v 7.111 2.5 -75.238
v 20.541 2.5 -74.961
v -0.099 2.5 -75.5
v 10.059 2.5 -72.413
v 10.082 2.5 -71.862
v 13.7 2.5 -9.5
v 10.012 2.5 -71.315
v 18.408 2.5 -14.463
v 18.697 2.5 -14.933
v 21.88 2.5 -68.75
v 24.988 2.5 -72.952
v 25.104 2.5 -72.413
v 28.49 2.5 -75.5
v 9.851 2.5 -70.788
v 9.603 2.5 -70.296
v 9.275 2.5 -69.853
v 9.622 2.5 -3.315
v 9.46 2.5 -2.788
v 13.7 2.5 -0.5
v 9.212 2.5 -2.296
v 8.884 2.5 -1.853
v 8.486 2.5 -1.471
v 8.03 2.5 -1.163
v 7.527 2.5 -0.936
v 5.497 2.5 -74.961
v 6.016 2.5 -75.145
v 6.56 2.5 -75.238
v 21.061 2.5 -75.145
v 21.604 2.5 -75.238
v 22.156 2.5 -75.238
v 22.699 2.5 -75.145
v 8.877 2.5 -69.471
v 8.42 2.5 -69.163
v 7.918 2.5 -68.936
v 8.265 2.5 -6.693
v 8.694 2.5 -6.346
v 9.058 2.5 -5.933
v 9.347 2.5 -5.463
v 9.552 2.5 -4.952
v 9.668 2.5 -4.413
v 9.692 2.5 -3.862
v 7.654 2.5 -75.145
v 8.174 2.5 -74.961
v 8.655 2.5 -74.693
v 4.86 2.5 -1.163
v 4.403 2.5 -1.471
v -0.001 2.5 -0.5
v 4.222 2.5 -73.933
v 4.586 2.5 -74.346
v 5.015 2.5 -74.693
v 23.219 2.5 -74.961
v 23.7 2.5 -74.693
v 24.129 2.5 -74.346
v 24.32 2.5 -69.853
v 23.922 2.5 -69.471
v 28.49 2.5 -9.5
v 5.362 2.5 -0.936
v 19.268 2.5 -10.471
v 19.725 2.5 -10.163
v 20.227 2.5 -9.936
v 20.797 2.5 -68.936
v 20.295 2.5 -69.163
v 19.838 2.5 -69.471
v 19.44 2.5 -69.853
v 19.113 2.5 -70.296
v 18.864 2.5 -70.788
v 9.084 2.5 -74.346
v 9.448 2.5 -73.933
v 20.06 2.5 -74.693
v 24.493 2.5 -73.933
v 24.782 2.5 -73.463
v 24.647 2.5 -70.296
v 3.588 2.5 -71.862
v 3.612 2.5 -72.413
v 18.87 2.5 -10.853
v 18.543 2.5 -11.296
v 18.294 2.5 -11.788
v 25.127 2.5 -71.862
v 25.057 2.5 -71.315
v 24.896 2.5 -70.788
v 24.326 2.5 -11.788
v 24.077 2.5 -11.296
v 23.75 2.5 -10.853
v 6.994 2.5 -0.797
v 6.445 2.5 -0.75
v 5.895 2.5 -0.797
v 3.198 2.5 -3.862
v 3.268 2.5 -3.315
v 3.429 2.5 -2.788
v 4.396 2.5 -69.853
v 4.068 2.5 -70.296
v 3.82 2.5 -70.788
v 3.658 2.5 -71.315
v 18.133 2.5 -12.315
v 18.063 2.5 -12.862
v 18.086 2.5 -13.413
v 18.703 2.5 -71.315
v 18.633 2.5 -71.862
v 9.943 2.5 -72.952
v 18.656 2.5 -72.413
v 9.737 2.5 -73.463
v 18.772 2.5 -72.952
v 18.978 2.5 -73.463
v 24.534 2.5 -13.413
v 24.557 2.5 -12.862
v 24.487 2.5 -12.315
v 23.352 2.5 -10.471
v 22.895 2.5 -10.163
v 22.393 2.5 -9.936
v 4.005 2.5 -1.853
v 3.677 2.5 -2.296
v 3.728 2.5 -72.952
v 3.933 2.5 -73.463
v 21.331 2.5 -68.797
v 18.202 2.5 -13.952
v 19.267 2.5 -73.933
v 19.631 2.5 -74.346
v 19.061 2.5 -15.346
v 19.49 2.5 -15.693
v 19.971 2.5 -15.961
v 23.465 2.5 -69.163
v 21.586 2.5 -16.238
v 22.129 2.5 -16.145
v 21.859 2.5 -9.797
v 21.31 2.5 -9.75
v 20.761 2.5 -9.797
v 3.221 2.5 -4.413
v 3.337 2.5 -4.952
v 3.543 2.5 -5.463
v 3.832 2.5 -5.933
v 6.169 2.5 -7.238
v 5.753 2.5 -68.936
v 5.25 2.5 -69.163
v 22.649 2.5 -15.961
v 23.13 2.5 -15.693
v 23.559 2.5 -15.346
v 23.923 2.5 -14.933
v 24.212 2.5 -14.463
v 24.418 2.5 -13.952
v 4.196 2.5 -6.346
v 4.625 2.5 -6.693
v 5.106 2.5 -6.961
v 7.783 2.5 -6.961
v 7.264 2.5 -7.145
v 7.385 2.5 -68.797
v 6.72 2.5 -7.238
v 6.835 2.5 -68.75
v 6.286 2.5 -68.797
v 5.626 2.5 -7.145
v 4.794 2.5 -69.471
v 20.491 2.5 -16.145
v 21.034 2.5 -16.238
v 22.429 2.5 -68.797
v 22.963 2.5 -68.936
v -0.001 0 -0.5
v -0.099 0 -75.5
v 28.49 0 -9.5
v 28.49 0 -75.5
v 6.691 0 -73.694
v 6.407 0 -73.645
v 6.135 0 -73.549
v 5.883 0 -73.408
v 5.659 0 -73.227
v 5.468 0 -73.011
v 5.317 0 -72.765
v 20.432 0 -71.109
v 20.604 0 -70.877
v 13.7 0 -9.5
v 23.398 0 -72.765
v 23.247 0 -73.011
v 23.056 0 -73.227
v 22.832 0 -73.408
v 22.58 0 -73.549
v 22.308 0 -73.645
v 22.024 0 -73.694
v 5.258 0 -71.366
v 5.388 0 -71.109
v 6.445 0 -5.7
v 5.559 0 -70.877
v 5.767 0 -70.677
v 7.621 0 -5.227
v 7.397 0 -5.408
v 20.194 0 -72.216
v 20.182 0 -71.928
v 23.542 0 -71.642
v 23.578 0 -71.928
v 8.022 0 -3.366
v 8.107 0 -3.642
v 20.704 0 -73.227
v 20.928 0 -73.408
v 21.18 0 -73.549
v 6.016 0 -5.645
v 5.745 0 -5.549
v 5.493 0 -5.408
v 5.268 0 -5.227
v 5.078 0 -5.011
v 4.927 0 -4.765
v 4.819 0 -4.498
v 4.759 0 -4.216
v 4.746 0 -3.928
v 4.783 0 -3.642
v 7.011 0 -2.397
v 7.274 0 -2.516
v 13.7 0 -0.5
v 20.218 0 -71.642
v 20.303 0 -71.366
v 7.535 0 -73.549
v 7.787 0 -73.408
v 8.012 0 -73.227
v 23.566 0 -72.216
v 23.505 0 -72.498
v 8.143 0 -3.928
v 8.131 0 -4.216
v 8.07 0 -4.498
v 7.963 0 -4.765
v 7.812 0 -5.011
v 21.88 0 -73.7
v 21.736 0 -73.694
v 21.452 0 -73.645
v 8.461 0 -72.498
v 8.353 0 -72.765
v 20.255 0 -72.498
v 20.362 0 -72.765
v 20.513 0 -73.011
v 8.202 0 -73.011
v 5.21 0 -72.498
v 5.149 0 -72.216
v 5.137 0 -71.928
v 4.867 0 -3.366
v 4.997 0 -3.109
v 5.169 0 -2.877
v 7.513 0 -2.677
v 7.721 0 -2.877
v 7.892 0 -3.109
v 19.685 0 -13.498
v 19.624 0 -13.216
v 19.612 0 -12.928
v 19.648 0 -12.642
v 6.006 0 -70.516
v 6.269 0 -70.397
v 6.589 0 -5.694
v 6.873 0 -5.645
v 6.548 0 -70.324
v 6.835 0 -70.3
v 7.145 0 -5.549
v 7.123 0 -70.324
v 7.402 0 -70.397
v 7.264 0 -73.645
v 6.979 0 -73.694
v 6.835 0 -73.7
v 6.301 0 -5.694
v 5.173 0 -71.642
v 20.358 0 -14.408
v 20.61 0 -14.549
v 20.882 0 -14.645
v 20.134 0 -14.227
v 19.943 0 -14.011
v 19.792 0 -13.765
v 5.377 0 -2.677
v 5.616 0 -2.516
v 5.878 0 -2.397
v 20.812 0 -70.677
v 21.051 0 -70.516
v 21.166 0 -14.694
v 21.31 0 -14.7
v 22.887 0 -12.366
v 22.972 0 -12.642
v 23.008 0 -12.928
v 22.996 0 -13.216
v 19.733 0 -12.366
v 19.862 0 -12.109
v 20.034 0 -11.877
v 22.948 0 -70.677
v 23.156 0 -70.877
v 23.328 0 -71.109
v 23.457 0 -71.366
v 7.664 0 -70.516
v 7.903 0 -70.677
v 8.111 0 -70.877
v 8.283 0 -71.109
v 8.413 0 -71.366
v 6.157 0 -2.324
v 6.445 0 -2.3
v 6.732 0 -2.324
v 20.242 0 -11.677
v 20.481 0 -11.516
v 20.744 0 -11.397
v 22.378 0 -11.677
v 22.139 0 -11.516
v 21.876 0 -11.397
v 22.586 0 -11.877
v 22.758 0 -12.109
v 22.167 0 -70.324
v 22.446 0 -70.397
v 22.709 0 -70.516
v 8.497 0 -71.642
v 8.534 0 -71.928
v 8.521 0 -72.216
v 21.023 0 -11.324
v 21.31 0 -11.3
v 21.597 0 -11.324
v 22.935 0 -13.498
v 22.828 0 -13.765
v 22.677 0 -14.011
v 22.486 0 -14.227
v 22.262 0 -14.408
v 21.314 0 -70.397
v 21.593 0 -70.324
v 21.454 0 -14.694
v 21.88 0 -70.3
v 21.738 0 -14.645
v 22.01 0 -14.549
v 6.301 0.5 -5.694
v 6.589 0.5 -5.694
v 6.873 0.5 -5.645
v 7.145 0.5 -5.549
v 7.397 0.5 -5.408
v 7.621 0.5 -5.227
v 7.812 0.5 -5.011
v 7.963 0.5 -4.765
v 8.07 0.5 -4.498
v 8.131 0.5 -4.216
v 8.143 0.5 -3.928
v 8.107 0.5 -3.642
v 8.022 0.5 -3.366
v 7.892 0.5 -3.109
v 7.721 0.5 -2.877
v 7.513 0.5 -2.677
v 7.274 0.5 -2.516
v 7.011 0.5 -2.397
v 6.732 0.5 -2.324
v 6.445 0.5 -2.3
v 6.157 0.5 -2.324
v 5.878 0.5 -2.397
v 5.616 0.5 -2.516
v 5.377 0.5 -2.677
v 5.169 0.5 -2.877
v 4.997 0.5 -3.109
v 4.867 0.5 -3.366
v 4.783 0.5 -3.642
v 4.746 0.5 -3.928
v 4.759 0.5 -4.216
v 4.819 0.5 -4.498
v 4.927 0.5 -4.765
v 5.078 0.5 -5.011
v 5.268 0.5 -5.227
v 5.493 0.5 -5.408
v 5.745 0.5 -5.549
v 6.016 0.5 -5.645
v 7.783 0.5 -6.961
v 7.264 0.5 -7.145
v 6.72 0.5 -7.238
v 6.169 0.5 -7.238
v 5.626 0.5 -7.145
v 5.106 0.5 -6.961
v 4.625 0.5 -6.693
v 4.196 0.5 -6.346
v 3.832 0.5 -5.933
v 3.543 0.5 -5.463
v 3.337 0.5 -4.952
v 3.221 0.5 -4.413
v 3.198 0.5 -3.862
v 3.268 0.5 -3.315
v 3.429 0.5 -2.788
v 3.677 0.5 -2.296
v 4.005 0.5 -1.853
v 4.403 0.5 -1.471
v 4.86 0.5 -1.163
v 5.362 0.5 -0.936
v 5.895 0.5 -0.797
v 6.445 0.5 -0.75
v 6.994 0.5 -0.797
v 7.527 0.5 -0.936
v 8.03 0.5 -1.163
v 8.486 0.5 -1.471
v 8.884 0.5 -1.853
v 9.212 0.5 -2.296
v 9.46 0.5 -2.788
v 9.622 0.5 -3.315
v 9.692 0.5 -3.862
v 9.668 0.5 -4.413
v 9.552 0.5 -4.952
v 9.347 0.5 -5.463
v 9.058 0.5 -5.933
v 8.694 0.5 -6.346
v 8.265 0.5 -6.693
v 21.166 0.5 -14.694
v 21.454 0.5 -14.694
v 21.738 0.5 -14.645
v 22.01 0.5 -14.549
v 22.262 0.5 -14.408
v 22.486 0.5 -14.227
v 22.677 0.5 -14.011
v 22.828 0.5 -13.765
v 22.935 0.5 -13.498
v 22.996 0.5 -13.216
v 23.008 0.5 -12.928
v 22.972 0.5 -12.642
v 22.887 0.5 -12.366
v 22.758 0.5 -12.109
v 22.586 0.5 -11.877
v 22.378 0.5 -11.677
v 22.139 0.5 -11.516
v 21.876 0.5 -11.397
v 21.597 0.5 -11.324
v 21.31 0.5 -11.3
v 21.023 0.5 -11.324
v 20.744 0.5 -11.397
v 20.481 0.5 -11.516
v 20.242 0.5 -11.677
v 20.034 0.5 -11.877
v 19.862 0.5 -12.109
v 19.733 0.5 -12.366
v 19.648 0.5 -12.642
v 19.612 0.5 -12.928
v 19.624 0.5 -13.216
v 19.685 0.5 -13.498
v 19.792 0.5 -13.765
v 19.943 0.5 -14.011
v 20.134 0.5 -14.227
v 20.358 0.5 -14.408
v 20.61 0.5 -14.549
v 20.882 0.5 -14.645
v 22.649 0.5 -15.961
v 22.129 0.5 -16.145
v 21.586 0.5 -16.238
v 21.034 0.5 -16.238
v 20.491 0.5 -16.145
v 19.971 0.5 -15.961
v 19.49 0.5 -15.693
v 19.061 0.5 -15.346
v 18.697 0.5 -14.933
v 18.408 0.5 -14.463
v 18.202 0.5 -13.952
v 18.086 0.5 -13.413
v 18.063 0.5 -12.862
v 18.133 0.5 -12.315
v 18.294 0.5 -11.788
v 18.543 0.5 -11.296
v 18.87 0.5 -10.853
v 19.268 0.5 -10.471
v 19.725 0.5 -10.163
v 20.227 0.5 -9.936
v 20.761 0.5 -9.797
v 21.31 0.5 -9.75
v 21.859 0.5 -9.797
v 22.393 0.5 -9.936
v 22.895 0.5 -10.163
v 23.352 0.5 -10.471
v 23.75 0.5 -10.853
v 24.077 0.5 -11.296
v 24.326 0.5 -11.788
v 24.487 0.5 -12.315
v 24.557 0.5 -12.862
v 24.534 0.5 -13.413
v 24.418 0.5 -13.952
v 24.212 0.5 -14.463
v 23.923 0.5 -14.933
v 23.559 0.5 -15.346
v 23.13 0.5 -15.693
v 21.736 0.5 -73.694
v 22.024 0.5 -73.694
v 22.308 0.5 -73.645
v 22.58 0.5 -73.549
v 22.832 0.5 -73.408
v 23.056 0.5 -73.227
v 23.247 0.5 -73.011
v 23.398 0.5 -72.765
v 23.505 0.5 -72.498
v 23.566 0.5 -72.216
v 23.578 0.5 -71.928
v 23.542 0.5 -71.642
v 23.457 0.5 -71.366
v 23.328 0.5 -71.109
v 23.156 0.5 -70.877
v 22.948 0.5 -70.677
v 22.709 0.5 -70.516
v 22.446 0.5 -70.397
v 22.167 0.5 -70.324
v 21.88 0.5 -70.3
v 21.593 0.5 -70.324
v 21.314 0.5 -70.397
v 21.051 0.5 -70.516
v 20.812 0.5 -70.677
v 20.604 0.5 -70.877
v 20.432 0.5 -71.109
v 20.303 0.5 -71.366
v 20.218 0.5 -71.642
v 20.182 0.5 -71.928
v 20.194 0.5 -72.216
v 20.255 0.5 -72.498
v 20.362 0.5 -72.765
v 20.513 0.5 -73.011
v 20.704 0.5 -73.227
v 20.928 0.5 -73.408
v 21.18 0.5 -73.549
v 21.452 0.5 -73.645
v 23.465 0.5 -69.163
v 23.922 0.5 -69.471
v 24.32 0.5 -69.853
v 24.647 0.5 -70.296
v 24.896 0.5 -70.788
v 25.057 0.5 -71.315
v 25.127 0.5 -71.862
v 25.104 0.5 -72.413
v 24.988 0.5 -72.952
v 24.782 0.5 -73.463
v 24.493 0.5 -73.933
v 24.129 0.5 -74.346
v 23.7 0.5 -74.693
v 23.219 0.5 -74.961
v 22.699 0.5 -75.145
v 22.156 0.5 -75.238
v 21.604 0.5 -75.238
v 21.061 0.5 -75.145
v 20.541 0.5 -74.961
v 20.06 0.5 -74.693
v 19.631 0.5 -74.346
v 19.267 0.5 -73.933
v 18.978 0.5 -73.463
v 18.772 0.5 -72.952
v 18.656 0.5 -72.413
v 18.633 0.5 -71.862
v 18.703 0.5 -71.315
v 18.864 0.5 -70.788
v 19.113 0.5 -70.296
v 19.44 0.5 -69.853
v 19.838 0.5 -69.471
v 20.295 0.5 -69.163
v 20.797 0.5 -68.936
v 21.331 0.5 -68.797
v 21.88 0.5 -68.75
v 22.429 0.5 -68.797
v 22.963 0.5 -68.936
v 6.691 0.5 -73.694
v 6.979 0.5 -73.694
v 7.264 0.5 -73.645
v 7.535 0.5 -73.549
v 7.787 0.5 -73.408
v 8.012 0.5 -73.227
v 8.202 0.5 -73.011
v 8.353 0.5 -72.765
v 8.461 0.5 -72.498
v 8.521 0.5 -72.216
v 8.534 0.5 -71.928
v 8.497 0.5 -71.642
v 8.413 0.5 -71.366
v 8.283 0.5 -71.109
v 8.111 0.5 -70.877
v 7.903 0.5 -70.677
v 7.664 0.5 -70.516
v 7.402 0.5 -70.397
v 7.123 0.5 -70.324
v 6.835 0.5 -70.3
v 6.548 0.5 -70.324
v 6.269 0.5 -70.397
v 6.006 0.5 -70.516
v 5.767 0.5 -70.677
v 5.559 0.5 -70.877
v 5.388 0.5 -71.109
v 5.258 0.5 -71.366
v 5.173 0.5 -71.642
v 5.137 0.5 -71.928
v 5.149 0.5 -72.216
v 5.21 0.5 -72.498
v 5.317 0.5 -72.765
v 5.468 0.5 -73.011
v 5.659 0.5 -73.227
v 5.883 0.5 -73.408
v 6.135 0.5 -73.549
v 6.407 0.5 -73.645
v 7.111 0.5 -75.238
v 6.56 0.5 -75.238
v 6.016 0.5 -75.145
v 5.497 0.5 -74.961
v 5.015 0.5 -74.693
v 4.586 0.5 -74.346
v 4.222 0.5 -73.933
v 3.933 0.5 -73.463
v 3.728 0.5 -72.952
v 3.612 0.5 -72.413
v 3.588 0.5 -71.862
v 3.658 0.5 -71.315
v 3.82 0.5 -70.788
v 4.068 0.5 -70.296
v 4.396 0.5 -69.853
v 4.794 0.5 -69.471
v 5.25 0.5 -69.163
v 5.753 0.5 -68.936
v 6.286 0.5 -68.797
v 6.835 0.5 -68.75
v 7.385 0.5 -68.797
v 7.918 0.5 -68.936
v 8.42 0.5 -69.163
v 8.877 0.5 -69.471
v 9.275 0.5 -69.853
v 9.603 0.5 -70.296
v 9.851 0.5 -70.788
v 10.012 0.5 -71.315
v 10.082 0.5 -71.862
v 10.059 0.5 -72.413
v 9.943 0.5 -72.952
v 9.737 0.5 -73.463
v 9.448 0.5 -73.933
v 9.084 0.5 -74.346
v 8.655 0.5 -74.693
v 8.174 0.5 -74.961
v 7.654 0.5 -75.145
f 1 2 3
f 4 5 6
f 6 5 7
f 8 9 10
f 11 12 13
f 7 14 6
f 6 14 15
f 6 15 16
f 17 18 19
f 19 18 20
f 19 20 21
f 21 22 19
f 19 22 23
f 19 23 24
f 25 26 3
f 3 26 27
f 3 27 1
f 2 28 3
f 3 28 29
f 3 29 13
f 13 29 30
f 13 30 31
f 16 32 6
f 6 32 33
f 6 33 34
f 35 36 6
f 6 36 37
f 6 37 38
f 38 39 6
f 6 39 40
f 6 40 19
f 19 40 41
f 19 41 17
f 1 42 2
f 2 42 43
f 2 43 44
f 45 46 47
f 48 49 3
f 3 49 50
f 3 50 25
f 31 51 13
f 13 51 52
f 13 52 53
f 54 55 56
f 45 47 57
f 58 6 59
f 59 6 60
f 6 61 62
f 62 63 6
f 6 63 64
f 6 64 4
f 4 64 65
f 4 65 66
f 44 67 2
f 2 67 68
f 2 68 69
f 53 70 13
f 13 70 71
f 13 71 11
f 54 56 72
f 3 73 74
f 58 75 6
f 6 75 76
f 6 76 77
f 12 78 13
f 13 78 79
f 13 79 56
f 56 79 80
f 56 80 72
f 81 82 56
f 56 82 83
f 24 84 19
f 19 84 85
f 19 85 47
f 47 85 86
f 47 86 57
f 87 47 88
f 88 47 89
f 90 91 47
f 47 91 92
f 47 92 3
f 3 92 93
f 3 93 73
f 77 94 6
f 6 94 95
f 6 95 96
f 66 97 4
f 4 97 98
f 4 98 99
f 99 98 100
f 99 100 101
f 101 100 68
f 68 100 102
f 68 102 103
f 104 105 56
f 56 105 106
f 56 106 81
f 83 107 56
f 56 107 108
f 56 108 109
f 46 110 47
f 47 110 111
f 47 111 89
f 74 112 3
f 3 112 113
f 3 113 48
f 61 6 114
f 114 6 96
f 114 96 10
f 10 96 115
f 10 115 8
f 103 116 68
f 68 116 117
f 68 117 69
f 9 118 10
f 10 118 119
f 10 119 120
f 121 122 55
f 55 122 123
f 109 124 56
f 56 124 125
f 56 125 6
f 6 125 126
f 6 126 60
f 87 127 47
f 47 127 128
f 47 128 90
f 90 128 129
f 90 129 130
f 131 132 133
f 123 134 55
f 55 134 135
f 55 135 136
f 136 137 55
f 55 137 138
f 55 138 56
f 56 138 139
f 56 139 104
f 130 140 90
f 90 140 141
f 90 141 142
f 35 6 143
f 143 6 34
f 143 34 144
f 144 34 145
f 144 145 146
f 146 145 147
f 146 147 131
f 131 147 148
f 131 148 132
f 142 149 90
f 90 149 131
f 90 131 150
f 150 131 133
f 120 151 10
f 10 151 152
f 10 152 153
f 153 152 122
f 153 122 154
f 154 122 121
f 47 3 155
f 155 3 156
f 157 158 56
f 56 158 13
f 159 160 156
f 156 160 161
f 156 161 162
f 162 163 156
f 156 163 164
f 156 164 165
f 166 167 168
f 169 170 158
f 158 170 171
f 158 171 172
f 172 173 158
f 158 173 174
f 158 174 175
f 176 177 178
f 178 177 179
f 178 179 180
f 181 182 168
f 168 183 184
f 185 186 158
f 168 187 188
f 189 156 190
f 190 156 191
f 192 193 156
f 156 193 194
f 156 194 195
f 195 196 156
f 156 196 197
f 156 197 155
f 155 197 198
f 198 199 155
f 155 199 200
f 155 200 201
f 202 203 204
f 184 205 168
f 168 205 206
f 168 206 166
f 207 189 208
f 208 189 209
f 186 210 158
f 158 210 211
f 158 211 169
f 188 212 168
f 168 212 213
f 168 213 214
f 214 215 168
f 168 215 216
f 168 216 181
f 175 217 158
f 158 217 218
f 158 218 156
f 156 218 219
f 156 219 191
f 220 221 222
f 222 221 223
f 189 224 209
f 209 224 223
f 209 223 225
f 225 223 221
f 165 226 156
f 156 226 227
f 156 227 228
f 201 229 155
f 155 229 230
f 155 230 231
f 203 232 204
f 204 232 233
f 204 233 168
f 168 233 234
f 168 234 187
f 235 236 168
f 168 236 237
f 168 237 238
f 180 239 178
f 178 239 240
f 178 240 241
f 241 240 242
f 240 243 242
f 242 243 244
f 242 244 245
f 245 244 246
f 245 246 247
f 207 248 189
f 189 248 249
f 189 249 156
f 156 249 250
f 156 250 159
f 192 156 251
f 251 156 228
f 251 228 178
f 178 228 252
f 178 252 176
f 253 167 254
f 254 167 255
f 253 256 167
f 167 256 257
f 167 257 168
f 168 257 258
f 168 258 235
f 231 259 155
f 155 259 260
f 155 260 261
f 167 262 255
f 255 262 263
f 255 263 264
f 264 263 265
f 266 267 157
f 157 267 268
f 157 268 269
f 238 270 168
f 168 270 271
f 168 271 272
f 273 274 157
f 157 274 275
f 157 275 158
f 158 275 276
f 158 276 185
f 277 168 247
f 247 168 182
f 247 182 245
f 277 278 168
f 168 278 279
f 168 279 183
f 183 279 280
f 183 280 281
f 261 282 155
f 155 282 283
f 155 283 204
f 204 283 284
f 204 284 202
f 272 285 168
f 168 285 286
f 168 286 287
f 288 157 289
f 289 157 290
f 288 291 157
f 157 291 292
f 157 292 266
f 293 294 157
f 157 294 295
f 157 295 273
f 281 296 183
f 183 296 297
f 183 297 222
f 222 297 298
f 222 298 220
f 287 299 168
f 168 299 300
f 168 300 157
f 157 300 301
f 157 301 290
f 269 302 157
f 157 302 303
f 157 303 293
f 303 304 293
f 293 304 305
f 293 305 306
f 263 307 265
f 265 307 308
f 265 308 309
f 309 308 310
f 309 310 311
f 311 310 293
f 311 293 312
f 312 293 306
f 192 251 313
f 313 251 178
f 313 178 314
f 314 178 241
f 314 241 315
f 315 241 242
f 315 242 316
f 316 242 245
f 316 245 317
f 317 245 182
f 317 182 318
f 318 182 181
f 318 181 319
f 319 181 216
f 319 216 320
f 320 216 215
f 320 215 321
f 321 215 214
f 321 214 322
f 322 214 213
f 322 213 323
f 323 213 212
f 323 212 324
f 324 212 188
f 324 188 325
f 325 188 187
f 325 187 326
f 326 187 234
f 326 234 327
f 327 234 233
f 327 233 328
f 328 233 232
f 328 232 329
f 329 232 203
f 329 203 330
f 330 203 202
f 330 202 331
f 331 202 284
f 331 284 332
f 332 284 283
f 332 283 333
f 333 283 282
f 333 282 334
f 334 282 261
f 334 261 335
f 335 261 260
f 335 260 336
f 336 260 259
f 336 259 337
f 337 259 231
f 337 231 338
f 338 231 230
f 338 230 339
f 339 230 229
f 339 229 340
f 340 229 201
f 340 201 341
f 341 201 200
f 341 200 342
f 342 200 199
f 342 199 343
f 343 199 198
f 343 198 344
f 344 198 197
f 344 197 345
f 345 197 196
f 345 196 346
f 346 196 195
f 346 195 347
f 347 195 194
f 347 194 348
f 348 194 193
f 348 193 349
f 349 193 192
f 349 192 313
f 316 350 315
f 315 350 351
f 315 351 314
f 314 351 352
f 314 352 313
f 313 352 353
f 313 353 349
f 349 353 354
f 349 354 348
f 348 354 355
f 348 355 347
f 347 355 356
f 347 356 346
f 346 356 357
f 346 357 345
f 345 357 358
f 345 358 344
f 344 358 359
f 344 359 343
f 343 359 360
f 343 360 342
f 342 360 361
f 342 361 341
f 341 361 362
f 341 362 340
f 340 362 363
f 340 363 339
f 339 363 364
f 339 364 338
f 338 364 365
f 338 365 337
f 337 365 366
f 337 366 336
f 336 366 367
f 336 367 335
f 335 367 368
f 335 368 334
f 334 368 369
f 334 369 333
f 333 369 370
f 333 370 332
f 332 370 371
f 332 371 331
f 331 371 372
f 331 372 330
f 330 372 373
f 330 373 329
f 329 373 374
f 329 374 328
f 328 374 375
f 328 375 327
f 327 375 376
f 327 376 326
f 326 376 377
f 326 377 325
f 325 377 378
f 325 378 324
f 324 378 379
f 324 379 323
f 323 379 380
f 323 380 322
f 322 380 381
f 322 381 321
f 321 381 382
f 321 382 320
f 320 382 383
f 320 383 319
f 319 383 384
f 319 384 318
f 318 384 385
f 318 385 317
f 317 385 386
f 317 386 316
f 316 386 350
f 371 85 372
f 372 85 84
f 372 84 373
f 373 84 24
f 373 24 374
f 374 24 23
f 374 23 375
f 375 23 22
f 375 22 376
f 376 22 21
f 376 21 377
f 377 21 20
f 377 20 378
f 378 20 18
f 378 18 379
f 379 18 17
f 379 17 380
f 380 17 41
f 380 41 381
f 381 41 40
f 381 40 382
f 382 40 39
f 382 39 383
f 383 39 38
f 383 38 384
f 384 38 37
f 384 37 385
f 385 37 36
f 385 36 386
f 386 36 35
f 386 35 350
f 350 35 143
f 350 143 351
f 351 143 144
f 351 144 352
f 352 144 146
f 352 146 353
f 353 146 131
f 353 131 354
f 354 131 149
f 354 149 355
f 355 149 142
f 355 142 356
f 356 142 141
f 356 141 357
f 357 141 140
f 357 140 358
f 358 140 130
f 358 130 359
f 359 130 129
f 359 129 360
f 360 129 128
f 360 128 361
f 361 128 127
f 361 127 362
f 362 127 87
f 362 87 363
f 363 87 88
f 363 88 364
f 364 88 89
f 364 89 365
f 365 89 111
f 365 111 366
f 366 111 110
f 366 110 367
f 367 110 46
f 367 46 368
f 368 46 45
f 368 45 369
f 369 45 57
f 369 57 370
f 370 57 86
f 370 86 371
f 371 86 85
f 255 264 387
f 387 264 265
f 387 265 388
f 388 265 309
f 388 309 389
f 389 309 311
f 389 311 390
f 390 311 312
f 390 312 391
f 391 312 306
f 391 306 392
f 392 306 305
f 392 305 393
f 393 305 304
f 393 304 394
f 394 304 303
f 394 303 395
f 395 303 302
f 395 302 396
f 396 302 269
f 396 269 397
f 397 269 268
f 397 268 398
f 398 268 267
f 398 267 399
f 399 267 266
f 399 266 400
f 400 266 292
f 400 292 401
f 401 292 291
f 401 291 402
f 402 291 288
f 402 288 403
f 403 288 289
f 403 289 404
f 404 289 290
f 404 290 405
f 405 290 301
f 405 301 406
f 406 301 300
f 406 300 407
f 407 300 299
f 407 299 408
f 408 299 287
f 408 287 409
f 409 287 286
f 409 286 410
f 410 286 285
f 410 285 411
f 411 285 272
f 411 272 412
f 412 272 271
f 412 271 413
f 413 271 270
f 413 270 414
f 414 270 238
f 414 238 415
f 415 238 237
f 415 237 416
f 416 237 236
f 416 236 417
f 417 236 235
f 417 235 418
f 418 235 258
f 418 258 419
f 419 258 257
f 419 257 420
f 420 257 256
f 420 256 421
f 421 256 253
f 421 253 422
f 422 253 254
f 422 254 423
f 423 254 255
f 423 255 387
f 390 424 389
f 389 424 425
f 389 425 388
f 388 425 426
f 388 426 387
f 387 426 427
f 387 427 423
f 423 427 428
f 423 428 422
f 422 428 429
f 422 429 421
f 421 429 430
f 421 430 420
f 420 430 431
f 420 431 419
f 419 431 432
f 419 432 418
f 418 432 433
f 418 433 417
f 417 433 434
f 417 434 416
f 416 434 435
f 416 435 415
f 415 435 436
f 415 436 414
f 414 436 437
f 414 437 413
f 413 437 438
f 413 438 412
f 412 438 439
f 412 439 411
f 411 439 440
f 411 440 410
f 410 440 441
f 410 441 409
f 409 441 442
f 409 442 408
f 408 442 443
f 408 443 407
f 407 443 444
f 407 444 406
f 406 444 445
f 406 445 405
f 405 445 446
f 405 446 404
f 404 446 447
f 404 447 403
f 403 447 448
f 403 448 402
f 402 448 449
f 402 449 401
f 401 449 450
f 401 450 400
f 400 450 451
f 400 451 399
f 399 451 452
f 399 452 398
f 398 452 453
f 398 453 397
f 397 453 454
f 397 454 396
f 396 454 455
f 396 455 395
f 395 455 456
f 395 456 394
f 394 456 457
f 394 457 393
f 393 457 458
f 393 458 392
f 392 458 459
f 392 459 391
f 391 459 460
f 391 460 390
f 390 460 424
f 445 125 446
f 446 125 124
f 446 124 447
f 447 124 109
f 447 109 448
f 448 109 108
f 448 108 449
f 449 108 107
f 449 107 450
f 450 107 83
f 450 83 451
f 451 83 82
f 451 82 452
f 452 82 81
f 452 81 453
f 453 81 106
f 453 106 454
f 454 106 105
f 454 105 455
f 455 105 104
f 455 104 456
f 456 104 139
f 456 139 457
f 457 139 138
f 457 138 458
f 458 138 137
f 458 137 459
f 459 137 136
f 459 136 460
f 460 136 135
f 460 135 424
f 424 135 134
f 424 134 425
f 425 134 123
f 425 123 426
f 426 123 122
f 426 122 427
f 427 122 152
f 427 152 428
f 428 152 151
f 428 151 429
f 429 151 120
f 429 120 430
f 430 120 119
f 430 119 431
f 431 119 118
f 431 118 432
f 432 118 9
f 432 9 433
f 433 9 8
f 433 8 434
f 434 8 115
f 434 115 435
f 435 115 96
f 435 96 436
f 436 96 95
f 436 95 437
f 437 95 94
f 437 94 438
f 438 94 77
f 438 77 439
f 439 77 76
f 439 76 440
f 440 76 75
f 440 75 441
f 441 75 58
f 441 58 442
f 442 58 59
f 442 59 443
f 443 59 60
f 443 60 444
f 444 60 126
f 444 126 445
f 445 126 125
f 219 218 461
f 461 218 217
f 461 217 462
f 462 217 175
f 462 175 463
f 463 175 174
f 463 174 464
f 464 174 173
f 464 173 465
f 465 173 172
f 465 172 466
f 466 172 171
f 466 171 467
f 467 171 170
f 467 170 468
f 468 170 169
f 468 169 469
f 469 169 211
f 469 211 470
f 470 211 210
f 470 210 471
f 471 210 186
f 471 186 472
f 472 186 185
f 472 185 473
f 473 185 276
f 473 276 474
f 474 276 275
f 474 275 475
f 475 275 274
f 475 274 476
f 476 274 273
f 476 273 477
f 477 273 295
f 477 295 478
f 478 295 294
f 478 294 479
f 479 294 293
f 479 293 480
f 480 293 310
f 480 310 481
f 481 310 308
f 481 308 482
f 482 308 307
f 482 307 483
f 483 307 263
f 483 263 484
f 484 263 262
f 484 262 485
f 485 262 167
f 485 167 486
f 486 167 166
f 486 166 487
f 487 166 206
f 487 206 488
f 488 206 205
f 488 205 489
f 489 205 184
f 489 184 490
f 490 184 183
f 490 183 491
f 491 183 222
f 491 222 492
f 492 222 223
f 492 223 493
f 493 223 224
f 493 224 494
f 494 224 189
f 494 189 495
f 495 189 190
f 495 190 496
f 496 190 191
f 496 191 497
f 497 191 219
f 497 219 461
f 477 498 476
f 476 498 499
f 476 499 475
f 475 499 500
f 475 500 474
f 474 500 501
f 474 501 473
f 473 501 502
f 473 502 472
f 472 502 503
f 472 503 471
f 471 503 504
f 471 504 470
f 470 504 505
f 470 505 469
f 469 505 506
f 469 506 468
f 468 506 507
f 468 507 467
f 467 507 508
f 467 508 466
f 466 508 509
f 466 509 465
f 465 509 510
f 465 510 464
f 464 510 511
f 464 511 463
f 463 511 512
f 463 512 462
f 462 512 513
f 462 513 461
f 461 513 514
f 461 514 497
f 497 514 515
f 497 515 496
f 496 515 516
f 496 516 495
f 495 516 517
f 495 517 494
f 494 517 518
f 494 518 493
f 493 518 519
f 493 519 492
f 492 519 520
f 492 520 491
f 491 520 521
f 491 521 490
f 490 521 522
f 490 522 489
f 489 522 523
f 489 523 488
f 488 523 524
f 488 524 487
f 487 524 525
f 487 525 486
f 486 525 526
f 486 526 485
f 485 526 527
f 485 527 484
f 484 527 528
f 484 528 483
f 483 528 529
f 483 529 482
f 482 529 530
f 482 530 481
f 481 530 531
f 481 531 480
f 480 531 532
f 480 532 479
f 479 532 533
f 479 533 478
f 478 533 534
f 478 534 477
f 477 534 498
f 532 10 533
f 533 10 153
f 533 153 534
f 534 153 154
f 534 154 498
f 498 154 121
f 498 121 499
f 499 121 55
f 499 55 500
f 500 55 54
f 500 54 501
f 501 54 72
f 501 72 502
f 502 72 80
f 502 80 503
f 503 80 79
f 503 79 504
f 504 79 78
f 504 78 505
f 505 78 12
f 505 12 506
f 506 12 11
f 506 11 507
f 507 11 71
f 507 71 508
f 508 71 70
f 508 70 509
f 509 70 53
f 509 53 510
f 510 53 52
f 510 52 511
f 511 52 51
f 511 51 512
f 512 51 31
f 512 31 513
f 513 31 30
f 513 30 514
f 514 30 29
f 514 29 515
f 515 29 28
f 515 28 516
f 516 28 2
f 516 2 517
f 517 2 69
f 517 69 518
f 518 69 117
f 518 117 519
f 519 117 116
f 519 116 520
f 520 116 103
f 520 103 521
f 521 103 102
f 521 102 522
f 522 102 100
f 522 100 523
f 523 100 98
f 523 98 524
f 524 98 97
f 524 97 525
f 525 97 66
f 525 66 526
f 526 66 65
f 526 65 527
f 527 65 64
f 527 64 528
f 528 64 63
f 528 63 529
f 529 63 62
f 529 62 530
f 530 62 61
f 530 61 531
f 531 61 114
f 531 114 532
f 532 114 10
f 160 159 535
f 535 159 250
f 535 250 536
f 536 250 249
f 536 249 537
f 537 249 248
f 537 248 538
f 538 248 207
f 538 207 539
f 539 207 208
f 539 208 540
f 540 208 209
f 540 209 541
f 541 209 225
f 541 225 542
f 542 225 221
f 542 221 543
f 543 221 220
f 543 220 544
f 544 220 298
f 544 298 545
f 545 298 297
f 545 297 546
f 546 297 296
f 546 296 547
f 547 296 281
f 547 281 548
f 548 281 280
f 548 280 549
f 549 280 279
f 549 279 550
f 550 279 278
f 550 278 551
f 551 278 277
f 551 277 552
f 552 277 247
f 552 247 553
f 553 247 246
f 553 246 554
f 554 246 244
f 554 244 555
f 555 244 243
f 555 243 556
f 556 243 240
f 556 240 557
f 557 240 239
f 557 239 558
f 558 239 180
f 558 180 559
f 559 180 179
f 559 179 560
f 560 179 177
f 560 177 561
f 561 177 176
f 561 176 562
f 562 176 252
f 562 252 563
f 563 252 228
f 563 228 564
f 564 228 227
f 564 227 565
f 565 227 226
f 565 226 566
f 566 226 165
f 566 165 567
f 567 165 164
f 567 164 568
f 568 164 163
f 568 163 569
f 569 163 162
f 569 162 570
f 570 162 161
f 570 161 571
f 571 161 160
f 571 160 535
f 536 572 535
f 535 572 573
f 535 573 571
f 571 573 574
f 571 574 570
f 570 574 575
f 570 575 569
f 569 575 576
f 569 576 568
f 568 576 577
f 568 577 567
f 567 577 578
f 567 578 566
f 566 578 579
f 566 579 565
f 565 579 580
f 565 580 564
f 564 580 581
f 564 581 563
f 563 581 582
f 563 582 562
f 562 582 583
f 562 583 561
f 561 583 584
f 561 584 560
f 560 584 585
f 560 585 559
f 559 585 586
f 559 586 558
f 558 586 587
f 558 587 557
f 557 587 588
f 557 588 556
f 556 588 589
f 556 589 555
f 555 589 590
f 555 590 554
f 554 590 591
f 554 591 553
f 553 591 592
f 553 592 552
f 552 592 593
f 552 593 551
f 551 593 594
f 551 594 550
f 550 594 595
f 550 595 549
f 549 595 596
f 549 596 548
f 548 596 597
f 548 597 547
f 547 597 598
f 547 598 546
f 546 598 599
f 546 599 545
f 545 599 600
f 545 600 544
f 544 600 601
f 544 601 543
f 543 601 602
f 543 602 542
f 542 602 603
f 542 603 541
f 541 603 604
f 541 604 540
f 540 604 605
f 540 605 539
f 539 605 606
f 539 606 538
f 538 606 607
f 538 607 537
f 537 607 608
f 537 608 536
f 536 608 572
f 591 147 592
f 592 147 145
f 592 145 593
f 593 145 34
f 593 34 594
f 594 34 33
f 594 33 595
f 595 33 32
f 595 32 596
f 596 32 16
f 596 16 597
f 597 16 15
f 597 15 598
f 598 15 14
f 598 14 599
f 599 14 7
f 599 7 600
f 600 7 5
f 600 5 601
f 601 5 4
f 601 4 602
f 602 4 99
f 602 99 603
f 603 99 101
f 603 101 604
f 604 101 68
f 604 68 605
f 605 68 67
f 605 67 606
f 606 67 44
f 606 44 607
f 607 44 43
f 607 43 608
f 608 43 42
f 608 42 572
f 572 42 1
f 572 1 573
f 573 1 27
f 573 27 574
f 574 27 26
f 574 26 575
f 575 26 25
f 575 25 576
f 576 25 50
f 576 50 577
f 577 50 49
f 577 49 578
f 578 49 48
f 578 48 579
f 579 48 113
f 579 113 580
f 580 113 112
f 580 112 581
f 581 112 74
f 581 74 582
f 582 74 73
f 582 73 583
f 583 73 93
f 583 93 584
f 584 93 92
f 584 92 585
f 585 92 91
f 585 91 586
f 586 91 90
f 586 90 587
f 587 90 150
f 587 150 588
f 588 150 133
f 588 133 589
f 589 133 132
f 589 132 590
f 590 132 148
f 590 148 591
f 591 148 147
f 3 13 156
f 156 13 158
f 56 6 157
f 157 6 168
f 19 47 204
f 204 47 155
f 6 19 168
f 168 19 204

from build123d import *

# Parameters (mm, degrees)
BOSS_EXTRUDE1_DEPTH                         = 2.5
CBORE_FOR_M3_CHEESE_HEAD_SCREW1_D           = 3.4
CBORE_FOR_M3_CHEESE_HEAD_SCREW1_CBORE_D     = 6.5
CBORE_FOR_M3_CHEESE_HEAD_SCREW1_CBORE_DEPTH = 2
CUT_EXTRUDE1_DEPTH                          = 10
SKETCH6_W                                   = 14.59
SKETCH6_H                                   = 0.5
CUT_EXTRUDE2_DEPTH                          = 10
CUT_EXTRUDE3_DEPTH                          = 10
SKETCH8_W                                   = 0.2
SKETCH8_H                                   = 9.000000433
CUT_EXTRUDE4_DEPTH                          = 10


with BuildPart() as part:
    # Sketch1 → Boss-Extrude1 (new body)
    with BuildSketch(Plane(origin=(0, 0, 0), x_dir=(1, 0, 0), z_dir=(0, 1, 0))):
        Polygon((0, 0), (13.9, 0), (13.9, 9), (28.49, 9), (28.49, 76), (-0.1, 76), align=None)
    extrude(amount=BOSS_EXTRUDE1_DEPTH)

    # CBORE for M3 Cheese Head Screw1 (through all)
    with Locations(Plane(origin=(0, 2.5, 0), x_dir=(1, 0, 0), z_dir=(0, 1, 0))):
        with Locations((6.835263153, 72.000003463), (21.88, 72.000003463), (21.31, 13), (6.444736847, 3.999996537)):
            CounterBoreHole(CBORE_FOR_M3_CHEESE_HEAD_SCREW1_D / 2, CBORE_FOR_M3_CHEESE_HEAD_SCREW1_CBORE_D / 2, CBORE_FOR_M3_CHEESE_HEAD_SCREW1_CBORE_DEPTH)

    # Sketch5 → Cut-Extrude1 (cut)
    with BuildSketch(Plane(origin=(0, 2.5, 0), x_dir=(1, 0, 0), z_dir=(0, 1, 0))):
        Polygon((-0.1, 76), (-0.099342106, 75.500000433), (28.49, 75.500000433), (28.49, 76), align=None)
    extrude(amount=-CUT_EXTRUDE1_DEPTH, mode=Mode.SUBTRACT)

    # Sketch6 → Cut-Extrude2 (cut)
    with BuildSketch(Plane(origin=(0, 2.5, 0), x_dir=(1, 0, 0), z_dir=(0, 1, 0))):
        with Locations((21.195, 9.25)):
            Rectangle(SKETCH6_W, SKETCH6_H)
    extrude(amount=-CUT_EXTRUDE2_DEPTH, mode=Mode.SUBTRACT)

    # Sketch7 → Cut-Extrude3 (cut)
    with BuildSketch(Plane(origin=(0, 2.5, 0), x_dir=(1, 0, 0), z_dir=(0, 1, 0))):
        Polygon((13.9, 0), (13.9, 0.499999567), (-0.000657894, 0.499999567), (0, 0), align=None)
    extrude(amount=-CUT_EXTRUDE3_DEPTH, mode=Mode.SUBTRACT)

    # Sketch8 → Cut-Extrude4 (cut)
    with BuildSketch(Plane(origin=(0, 2.5, 0), x_dir=(1, 0, 0), z_dir=(0, 1, 0))):
        with Locations((13.8, 4.999999783)):
            Rectangle(SKETCH8_W, SKETCH8_H)
    extrude(amount=-CUT_EXTRUDE4_DEPTH, mode=Mode.SUBTRACT)


solid = part.part
